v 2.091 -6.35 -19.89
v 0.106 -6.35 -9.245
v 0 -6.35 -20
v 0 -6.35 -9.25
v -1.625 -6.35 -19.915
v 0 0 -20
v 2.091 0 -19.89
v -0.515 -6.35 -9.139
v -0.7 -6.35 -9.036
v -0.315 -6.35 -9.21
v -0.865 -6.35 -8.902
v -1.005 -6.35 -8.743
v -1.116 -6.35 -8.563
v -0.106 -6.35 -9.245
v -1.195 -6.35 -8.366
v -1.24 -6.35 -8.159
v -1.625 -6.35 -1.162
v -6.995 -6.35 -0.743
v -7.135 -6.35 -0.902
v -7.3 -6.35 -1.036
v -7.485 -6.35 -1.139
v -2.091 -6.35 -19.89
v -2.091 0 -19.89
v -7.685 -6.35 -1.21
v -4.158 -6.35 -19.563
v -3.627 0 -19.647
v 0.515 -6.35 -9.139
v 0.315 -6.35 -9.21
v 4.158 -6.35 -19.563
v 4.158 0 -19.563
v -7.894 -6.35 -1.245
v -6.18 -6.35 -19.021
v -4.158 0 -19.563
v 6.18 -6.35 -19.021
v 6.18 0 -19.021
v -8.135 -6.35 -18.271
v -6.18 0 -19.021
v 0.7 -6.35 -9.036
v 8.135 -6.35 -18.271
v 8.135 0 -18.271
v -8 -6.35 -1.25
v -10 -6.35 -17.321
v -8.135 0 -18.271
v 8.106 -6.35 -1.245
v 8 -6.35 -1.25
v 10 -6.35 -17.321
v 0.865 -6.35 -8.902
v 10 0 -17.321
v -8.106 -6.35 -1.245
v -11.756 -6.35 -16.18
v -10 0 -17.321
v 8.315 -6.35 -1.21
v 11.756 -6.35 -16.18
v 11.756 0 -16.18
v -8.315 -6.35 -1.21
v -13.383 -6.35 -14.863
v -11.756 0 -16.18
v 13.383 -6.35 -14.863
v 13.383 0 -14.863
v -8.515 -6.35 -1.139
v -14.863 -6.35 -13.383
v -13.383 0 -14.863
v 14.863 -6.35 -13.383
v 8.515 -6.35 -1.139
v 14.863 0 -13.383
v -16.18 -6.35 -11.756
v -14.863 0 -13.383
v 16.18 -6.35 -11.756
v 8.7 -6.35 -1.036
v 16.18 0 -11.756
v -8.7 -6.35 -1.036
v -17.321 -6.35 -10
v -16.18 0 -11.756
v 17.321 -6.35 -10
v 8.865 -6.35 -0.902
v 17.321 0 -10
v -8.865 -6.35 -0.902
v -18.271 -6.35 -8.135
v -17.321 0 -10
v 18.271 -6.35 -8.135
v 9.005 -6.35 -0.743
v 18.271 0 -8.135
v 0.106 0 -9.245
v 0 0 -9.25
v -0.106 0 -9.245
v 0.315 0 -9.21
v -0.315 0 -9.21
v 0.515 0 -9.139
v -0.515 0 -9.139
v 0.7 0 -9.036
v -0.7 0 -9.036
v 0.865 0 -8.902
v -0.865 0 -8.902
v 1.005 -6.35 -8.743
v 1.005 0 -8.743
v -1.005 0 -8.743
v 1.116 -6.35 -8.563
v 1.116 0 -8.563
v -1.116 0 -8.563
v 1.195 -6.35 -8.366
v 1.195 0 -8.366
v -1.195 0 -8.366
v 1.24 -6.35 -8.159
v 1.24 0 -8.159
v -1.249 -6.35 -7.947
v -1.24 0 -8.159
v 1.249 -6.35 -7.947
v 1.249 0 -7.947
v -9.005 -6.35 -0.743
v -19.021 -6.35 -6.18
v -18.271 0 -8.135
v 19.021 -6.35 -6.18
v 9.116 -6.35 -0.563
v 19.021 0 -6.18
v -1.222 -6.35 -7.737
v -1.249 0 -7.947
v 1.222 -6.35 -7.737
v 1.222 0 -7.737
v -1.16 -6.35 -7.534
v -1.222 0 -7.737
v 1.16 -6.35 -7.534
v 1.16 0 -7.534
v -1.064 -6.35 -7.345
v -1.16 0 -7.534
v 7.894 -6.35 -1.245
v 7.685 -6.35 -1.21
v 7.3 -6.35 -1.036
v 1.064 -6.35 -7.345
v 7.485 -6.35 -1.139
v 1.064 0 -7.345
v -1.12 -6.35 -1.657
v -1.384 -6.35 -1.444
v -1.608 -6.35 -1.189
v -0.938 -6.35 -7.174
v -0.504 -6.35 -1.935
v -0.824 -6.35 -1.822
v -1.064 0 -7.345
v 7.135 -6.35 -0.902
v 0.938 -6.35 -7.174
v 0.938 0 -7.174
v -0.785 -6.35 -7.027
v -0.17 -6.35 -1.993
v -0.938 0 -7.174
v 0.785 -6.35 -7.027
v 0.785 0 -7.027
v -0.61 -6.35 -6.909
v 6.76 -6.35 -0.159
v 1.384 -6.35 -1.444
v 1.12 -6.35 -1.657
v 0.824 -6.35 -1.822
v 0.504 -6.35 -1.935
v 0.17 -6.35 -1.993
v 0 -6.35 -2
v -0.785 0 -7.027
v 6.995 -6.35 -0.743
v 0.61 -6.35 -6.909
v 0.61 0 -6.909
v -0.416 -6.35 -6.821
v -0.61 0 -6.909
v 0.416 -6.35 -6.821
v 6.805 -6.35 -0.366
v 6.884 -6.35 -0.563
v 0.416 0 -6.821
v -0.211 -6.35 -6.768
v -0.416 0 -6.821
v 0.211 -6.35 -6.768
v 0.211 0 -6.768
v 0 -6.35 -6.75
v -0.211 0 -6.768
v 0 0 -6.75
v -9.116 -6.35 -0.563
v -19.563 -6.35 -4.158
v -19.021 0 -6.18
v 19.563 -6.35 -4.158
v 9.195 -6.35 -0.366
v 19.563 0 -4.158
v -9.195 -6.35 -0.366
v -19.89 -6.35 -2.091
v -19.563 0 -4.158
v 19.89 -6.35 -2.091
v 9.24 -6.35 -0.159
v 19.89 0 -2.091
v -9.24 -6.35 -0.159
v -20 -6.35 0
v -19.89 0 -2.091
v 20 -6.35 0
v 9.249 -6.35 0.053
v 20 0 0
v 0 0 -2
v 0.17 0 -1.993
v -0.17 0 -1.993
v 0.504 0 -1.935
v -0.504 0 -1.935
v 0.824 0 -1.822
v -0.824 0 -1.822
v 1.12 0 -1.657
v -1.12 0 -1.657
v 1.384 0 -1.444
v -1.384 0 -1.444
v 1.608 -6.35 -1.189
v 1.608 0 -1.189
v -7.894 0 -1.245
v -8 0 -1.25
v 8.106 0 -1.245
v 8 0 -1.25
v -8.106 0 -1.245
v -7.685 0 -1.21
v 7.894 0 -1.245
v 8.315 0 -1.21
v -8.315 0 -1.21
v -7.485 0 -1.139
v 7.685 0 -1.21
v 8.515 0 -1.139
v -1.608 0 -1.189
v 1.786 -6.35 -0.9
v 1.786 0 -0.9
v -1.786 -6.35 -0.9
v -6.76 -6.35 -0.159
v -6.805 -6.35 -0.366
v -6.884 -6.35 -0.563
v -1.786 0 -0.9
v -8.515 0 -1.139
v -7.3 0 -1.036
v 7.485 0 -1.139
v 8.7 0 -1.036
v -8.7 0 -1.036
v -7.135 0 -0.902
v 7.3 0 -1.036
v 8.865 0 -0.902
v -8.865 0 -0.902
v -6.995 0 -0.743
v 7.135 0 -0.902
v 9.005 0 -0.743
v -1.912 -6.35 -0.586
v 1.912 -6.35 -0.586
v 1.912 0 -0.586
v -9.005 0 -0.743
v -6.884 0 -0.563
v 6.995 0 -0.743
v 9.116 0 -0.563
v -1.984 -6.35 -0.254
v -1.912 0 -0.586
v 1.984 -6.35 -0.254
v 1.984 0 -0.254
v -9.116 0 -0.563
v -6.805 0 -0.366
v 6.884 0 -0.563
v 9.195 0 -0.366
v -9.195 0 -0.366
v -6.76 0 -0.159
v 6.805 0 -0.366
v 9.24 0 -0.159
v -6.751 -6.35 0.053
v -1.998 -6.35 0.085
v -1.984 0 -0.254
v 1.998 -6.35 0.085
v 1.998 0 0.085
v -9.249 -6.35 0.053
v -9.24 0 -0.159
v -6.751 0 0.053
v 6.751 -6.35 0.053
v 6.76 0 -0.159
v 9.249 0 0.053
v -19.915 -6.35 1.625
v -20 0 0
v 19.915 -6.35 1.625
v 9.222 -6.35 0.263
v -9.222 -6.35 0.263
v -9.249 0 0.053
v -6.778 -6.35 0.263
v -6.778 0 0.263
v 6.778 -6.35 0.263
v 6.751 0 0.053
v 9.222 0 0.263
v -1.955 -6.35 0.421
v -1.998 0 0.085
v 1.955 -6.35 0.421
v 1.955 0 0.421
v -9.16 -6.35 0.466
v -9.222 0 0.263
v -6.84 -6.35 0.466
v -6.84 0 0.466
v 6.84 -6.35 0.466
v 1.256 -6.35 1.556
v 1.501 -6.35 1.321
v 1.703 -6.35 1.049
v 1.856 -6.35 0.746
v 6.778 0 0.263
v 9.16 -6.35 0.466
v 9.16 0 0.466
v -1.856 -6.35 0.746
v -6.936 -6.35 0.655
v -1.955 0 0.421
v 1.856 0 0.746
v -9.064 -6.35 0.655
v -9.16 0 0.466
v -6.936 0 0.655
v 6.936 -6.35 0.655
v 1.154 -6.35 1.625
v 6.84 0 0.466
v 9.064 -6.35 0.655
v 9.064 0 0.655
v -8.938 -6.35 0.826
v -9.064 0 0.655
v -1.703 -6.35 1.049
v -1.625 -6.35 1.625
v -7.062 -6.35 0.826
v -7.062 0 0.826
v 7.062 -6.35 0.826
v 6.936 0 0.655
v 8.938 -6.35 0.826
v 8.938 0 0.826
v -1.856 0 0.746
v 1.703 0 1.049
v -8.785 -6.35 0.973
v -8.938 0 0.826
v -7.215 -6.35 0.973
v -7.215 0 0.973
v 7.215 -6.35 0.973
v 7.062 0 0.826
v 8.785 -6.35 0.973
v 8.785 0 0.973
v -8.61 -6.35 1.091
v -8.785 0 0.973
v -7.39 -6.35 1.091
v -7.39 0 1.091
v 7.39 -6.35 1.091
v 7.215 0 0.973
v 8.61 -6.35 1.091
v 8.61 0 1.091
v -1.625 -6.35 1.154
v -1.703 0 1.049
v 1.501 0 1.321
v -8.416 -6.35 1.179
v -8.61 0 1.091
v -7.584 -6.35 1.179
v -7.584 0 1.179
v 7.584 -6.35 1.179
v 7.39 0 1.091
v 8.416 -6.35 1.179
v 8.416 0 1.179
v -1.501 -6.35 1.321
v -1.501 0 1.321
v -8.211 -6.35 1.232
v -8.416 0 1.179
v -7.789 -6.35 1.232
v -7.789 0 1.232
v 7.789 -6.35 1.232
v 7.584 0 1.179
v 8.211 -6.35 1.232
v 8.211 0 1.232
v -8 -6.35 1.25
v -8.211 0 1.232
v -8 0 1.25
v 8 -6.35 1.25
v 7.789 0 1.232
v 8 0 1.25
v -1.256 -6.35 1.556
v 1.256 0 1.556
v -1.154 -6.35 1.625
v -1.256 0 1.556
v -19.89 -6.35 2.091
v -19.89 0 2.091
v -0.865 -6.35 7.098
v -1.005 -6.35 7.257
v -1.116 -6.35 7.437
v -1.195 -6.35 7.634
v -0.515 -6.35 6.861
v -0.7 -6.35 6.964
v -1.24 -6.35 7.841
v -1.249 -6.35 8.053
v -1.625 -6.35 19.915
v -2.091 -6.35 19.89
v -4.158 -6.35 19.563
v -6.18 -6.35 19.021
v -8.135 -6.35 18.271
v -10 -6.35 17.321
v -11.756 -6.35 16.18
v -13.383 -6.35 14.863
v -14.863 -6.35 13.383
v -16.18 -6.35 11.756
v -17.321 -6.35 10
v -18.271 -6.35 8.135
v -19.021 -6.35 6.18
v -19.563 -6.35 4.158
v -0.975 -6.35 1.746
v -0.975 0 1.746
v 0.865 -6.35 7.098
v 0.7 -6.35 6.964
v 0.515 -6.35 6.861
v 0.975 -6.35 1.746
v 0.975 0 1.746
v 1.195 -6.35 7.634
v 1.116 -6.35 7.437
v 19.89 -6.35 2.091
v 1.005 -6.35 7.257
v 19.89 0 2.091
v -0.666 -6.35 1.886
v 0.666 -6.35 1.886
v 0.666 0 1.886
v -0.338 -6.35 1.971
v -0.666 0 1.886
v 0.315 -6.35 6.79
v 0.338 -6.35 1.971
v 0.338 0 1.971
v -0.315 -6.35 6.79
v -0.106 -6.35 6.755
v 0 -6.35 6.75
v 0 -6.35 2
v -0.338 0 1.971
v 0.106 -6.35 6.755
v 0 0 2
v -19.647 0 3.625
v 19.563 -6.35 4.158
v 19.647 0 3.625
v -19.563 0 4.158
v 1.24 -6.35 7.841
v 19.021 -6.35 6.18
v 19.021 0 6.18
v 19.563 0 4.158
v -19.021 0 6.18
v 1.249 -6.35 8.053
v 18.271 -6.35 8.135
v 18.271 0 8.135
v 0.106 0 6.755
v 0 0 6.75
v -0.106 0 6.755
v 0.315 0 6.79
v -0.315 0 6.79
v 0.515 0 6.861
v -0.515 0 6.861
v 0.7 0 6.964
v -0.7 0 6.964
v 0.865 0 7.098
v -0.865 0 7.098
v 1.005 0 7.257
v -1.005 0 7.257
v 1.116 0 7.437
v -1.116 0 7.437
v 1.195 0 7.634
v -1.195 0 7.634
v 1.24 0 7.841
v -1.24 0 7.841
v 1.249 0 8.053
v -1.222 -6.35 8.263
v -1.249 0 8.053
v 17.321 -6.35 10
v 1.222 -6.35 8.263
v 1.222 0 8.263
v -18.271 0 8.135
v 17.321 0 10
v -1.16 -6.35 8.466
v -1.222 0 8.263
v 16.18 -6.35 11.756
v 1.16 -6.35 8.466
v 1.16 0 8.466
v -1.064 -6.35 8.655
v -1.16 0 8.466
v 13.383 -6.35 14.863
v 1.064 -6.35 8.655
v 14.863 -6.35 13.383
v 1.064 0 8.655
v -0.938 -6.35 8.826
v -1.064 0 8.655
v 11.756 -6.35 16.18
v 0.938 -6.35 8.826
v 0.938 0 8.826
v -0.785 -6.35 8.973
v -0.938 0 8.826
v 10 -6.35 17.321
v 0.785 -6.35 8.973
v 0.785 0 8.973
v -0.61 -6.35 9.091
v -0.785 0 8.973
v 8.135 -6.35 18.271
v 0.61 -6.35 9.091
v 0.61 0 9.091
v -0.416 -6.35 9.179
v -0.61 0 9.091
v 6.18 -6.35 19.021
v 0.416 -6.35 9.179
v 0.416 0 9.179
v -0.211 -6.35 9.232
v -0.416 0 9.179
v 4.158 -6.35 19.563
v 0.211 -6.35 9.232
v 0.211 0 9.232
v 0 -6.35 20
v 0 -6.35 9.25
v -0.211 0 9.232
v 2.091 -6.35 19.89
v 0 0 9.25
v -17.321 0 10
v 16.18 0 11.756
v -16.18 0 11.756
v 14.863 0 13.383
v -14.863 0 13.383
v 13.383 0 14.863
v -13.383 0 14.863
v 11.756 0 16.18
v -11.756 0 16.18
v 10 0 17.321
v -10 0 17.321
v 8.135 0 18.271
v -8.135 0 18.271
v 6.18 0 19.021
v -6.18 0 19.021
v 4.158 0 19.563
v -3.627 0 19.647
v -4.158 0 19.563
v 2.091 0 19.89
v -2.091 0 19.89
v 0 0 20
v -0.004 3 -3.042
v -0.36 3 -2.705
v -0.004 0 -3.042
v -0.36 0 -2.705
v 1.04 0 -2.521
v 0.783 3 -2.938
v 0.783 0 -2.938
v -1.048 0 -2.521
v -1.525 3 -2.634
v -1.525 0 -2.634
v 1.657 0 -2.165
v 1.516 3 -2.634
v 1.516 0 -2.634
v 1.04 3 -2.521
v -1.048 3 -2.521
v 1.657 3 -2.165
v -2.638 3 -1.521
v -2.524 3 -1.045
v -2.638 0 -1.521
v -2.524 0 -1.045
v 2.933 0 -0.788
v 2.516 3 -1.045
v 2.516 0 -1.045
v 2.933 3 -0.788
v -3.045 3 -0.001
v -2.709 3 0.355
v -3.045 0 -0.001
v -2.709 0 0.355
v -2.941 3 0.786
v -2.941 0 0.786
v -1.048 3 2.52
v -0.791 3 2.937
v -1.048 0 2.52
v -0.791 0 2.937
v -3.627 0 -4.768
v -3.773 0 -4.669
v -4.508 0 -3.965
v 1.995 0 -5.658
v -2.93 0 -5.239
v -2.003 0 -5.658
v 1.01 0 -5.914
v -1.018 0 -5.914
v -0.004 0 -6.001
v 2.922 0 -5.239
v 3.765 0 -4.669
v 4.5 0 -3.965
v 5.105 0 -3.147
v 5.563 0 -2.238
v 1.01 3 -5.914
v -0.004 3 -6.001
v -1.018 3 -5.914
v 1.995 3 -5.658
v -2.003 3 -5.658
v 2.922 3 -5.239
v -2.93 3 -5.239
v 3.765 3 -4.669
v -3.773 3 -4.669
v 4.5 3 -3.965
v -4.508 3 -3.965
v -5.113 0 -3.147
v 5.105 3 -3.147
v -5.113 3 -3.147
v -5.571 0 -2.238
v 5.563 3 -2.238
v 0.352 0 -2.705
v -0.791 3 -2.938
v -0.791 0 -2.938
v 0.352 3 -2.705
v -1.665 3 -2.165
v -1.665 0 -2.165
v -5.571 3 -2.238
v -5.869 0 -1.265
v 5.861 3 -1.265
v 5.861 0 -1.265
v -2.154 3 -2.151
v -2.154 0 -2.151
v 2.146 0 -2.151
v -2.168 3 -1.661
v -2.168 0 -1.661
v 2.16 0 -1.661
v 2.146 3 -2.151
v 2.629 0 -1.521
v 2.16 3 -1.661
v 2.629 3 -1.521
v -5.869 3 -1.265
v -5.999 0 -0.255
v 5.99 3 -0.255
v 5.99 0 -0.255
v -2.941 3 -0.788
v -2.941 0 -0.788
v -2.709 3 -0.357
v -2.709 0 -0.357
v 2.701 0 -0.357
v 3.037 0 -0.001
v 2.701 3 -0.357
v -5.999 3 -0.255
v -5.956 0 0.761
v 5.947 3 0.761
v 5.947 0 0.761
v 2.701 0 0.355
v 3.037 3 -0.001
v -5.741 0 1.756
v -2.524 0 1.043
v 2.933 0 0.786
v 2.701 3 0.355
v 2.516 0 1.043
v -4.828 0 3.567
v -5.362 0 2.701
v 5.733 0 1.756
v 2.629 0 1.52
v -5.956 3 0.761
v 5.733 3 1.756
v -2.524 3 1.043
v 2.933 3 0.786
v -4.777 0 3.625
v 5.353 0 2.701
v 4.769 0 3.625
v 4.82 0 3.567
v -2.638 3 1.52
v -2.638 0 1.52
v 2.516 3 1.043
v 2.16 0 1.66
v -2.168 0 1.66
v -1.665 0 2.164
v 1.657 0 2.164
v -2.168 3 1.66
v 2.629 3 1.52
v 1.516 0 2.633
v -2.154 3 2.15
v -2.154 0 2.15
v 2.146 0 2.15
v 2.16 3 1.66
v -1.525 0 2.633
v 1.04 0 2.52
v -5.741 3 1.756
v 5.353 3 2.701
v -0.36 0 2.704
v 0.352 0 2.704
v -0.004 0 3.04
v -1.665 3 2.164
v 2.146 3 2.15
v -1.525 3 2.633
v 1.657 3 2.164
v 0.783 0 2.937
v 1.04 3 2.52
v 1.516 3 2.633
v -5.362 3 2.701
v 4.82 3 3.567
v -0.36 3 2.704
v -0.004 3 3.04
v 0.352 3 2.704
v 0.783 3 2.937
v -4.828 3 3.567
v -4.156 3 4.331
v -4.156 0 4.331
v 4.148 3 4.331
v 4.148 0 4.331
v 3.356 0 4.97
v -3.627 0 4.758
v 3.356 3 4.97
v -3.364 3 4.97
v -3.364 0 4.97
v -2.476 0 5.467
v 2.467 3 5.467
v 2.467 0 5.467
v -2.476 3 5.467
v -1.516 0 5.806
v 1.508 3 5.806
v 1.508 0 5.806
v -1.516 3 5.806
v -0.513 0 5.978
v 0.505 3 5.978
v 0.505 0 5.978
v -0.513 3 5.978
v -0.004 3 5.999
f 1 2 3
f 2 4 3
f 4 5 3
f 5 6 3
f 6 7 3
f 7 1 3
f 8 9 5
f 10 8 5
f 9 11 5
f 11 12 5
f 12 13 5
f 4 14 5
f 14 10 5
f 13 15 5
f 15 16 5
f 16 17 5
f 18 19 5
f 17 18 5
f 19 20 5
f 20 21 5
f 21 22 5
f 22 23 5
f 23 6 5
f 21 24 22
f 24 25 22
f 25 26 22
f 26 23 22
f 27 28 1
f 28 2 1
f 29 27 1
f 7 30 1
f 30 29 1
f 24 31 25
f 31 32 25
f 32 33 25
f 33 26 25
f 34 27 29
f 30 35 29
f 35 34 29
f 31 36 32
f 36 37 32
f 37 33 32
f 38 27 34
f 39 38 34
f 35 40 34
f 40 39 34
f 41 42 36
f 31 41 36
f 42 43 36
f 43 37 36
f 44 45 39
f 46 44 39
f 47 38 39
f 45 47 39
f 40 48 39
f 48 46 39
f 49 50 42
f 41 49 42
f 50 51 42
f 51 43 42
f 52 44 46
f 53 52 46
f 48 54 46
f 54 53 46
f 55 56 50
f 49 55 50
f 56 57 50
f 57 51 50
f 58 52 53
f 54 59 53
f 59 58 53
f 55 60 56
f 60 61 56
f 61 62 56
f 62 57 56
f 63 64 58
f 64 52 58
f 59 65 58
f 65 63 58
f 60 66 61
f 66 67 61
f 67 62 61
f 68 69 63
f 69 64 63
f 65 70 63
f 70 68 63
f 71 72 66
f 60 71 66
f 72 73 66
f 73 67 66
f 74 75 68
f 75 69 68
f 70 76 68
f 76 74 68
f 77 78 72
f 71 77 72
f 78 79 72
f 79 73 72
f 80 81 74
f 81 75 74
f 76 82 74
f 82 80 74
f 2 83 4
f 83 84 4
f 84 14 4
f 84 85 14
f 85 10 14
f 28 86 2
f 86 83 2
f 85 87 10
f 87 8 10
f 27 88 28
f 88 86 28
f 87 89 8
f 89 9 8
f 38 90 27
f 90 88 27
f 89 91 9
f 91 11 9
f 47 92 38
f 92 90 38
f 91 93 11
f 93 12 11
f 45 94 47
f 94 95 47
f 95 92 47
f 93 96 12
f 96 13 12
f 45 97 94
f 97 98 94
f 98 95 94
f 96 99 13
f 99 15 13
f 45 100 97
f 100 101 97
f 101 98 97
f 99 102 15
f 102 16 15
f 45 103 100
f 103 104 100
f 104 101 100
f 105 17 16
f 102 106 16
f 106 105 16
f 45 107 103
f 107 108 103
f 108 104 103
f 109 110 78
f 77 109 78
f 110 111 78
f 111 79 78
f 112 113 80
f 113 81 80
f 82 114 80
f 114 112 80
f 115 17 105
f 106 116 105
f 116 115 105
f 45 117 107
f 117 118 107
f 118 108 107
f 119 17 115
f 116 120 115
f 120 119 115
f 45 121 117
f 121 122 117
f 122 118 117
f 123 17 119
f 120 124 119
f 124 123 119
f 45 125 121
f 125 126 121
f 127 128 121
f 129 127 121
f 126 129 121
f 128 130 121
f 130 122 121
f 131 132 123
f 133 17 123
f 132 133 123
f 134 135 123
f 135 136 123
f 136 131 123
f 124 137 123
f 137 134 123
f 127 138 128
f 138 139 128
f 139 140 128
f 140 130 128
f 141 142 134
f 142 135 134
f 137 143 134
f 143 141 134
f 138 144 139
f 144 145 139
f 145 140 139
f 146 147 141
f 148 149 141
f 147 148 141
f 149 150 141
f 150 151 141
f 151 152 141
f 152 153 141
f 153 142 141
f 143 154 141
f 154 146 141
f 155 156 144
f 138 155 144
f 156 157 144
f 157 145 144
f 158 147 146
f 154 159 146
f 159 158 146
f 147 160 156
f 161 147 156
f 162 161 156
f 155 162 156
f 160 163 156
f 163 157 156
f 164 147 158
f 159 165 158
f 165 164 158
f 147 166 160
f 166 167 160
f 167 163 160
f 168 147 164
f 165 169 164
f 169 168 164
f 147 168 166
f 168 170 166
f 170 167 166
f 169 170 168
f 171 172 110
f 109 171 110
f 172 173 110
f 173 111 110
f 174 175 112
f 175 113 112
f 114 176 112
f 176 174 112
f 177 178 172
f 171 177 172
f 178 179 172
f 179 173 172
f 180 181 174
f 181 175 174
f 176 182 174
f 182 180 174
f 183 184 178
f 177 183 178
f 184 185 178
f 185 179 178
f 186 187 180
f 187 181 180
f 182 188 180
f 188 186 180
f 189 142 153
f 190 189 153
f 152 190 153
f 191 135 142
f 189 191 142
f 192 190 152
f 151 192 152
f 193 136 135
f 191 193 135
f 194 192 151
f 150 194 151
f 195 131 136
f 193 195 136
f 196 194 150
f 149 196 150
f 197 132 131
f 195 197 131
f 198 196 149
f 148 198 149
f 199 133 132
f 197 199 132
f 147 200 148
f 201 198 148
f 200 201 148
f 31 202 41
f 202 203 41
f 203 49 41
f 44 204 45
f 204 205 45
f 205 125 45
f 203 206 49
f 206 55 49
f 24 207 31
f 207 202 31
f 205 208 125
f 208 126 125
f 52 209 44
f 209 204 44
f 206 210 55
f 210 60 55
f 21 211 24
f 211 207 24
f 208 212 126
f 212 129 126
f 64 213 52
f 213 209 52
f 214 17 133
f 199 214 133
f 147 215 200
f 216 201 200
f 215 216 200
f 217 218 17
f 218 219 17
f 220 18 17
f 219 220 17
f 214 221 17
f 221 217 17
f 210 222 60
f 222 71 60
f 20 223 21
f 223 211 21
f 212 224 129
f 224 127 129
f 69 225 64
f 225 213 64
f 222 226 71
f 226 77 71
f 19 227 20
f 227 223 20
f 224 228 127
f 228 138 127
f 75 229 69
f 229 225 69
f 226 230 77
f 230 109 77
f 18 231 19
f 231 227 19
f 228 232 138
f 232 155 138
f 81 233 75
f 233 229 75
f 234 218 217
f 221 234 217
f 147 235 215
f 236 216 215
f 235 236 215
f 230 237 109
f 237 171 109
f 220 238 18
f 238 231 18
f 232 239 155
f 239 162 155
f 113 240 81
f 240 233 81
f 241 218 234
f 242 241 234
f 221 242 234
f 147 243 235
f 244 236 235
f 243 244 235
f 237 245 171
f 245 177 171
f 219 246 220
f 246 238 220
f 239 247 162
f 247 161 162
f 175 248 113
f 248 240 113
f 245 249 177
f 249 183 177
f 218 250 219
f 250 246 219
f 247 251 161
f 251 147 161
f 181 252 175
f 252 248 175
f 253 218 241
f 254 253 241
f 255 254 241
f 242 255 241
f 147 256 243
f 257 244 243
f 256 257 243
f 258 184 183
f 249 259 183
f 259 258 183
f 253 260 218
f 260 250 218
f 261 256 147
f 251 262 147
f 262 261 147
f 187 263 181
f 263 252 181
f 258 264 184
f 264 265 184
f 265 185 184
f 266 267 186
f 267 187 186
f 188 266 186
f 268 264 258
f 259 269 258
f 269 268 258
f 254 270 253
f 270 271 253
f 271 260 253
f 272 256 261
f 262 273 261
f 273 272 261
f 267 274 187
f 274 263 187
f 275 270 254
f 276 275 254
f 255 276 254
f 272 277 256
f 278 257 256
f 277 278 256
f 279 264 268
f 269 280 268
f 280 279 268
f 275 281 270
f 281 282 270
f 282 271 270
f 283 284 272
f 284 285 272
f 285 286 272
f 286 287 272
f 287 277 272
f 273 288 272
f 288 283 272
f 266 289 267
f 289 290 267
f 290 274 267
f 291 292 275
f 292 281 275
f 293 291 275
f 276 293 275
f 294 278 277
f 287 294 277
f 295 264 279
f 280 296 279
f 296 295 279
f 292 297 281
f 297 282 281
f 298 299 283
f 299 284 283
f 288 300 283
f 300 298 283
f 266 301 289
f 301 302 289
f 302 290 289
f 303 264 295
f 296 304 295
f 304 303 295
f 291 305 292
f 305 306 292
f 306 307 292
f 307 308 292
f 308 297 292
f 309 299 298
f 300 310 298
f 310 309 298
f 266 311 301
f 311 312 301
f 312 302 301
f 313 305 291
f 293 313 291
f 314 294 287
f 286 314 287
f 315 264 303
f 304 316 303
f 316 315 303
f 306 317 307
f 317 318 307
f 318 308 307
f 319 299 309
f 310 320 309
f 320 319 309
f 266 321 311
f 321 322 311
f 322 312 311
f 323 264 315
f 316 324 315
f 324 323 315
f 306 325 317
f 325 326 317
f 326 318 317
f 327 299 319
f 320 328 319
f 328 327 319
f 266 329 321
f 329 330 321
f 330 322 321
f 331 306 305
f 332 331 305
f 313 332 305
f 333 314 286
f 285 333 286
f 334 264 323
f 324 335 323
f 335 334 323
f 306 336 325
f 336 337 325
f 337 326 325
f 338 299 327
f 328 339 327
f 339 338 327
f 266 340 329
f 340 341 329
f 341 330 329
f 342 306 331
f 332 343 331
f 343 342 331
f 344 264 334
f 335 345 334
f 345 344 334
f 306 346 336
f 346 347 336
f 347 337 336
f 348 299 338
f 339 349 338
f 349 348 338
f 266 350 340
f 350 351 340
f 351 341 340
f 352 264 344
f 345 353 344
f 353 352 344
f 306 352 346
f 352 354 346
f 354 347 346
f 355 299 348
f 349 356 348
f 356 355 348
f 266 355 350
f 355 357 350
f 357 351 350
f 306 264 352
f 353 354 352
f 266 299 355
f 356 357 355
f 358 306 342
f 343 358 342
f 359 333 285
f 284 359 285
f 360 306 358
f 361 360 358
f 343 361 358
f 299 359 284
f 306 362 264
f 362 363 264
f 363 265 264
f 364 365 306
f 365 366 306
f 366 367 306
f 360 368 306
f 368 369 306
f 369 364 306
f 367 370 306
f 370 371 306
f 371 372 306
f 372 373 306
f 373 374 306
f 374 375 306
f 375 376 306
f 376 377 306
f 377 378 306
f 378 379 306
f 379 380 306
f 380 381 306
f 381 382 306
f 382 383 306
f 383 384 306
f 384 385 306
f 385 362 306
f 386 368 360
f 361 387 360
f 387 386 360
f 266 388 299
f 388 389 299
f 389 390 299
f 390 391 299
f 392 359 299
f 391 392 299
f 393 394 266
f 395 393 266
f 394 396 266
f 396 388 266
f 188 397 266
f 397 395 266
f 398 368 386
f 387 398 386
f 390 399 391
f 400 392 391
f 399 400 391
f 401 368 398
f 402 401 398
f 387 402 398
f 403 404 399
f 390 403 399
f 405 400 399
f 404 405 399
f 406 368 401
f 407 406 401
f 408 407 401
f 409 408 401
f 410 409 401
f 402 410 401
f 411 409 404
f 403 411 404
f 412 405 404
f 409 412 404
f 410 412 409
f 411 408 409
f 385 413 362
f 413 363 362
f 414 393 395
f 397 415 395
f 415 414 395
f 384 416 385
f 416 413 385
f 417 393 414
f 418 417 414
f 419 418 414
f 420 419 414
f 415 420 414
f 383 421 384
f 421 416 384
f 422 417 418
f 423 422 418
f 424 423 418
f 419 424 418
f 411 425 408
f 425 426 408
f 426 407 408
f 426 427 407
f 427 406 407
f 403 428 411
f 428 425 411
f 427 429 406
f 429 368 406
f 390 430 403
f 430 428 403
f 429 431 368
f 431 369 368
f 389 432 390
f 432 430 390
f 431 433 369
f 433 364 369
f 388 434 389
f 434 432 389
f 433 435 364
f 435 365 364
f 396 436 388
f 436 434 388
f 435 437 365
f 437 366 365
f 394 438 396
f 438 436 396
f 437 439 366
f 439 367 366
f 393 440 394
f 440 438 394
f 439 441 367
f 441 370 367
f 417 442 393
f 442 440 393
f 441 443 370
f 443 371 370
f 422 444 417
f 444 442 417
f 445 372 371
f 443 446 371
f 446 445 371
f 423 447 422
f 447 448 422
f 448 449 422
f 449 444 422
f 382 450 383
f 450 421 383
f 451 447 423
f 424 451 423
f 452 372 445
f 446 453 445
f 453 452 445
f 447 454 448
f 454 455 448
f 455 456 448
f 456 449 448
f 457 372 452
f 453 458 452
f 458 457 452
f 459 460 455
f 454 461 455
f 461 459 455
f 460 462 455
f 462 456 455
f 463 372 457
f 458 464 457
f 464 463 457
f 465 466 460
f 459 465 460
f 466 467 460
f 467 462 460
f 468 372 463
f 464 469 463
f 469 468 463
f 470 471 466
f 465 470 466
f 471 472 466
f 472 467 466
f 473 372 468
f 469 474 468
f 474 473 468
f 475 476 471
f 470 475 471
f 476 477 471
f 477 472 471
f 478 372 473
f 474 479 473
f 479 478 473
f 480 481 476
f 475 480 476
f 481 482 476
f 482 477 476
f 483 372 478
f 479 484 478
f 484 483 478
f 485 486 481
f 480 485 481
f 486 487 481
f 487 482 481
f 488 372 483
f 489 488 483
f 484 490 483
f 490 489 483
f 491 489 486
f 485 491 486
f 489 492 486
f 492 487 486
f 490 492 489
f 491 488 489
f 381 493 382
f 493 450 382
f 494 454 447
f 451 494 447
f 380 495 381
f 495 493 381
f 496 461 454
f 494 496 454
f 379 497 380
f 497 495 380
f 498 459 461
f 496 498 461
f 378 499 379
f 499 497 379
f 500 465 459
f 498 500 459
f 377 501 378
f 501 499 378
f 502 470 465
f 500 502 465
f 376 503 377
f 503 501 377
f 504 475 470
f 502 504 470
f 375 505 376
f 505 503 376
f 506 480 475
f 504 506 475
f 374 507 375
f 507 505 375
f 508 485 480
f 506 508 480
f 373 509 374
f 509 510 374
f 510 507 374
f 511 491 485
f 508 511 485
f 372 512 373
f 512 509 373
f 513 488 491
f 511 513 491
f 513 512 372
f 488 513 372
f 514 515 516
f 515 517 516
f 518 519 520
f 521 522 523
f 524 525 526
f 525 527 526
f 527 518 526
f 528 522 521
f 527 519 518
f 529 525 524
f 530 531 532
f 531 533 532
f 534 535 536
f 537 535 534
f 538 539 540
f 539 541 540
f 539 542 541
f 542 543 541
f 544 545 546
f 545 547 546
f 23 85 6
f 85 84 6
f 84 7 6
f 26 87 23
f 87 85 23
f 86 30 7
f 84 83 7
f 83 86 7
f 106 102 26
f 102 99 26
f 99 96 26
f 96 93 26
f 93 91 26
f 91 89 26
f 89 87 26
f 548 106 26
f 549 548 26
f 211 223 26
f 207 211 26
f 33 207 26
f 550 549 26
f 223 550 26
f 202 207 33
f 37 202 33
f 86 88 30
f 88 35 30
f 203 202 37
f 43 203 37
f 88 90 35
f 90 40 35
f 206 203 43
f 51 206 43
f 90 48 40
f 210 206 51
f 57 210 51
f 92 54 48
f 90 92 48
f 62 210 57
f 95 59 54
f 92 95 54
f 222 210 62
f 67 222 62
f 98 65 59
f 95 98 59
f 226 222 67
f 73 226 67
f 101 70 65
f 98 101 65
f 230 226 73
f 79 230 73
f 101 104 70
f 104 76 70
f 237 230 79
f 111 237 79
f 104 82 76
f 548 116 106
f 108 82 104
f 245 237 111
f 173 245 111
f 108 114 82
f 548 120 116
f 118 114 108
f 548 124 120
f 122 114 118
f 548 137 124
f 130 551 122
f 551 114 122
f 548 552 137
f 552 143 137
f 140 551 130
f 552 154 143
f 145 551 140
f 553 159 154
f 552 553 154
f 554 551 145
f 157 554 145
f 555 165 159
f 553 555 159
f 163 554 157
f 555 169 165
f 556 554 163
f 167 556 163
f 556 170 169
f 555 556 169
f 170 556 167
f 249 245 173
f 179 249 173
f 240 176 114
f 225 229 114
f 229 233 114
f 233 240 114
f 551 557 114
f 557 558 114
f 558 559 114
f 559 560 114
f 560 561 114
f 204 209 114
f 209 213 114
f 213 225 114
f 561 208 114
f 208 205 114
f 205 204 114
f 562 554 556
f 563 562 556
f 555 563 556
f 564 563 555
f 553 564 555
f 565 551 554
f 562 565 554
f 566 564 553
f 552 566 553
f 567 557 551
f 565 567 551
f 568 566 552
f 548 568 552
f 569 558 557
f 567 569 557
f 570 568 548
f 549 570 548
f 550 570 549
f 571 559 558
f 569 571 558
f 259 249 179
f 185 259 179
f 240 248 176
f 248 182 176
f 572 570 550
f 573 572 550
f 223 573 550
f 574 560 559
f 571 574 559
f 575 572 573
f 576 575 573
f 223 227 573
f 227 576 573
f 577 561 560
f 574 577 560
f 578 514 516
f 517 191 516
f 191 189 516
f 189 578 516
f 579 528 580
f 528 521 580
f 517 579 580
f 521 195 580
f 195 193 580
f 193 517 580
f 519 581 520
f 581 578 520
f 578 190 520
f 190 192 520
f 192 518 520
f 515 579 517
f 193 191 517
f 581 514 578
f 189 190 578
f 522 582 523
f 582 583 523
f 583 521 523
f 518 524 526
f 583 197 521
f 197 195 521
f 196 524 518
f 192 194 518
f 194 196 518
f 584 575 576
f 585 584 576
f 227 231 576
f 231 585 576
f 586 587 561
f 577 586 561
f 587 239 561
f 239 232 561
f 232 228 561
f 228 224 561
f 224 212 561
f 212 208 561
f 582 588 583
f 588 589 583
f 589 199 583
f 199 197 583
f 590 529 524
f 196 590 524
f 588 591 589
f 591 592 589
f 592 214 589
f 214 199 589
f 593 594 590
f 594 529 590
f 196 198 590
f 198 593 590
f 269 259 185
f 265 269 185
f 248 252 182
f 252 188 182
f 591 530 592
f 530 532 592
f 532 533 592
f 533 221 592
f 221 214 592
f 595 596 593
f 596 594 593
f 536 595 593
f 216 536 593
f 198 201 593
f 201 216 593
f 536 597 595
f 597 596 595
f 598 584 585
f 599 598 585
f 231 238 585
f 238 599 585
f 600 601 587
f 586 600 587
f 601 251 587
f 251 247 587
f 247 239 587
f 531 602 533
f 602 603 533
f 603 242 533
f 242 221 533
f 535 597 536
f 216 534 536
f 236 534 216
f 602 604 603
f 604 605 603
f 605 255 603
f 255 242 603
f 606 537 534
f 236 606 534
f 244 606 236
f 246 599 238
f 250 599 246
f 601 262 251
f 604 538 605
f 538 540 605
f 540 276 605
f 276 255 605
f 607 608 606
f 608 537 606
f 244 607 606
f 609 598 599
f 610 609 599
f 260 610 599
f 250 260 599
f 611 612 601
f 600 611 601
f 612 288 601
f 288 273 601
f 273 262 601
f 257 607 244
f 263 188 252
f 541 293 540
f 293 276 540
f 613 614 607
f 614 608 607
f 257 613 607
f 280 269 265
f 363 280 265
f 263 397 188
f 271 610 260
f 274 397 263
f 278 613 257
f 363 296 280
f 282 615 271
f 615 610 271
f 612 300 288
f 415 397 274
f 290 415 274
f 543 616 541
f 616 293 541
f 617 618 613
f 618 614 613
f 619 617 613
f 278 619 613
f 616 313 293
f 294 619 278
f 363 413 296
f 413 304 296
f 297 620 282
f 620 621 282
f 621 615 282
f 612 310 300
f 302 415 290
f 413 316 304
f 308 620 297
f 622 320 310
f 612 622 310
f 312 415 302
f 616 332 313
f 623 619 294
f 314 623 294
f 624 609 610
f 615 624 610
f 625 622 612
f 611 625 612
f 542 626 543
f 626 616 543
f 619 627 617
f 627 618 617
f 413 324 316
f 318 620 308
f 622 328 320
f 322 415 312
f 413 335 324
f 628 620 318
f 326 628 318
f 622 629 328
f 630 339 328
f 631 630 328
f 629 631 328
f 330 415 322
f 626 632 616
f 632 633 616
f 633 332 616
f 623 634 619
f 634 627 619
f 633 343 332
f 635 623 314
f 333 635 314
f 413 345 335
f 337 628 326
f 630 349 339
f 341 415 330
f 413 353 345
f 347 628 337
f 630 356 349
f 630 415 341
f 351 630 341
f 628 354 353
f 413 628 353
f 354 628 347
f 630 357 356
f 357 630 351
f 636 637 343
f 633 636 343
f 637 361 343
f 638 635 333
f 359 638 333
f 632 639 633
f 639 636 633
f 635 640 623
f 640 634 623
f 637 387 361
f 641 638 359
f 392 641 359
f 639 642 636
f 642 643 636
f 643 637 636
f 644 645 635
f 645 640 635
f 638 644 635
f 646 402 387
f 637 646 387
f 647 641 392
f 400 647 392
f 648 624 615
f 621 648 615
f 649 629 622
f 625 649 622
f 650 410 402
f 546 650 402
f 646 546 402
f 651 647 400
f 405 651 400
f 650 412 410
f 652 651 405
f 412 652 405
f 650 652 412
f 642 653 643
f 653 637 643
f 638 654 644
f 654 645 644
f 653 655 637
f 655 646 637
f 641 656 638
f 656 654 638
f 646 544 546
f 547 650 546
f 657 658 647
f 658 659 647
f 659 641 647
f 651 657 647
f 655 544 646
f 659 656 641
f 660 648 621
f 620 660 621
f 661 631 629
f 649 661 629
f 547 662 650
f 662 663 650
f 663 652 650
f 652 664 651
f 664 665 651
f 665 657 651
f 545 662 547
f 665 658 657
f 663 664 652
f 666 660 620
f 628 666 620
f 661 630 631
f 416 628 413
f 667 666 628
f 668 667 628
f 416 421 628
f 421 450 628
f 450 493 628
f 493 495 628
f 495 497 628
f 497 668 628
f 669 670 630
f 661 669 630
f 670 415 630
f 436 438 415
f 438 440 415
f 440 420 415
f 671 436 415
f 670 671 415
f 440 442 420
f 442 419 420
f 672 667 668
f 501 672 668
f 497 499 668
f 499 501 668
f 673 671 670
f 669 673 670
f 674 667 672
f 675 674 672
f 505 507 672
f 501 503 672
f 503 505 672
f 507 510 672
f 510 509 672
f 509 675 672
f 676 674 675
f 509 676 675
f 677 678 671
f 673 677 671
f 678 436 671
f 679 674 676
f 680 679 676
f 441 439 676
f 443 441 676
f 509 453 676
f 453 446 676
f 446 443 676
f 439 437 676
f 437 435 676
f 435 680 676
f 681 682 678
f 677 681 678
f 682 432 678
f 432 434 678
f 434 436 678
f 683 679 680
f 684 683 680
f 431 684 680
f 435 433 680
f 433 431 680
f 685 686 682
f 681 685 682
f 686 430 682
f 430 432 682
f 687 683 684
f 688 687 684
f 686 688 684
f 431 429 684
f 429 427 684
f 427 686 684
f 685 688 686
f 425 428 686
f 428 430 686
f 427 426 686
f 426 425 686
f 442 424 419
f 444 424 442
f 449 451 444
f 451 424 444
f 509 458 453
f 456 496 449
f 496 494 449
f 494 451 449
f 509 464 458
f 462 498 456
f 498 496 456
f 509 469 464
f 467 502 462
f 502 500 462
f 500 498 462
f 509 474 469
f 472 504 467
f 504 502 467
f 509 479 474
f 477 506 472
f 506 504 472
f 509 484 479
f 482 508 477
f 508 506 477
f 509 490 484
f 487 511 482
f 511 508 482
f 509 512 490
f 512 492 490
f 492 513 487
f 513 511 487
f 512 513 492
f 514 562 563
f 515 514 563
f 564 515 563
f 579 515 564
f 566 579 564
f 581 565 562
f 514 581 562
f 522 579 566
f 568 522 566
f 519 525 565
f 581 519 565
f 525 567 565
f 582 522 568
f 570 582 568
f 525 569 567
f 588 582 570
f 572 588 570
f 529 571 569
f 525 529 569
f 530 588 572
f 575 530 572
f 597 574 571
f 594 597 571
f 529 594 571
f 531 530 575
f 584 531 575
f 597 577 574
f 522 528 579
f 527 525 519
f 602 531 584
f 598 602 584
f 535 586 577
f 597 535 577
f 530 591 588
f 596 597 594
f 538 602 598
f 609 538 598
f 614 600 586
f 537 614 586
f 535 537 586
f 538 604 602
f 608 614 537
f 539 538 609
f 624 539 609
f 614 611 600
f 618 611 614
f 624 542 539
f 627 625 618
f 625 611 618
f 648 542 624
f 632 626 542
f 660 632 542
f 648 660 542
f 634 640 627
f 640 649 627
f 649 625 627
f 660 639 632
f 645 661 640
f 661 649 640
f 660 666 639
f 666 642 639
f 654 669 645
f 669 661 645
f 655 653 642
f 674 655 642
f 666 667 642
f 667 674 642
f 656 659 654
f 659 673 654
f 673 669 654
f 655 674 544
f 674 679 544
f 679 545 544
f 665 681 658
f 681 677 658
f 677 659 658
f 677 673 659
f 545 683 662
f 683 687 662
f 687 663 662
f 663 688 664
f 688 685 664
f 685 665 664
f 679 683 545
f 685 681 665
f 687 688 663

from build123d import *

# Parameters (mm, degrees)
SKETCH1_R           = 6
BOSS_EXTRUDE1_DEPTH = 3
SKETCH2_R           = 20
SKETCH2_R_2         = 2
SKETCH2_R_3         = 1.25
BOSS_EXTRUDE2_DEPTH = 6.35


with BuildPart() as part:
    # Sketch1 → Boss-Extrude1 (new body)
    with BuildSketch(Plane(origin=(0, 0, 0), x_dir=(1, 0, 0), z_dir=(0, 1, 0))):
        with Locations(Location((-0.004099667, 0.000679594, 0), (0, 0, 270))):
            Circle(SKETCH1_R)
        Polygon((-0.004099667, 3.041629594), (-0.360179239, 2.705372466), (-0.791155443, 2.938011735), (-1.048072148, 2.521052117), (-1.524574667, 2.634219546), (-1.664820058, 2.164972545), (-2.154376034, 2.15095596), (-2.168392618, 1.661399985), (-2.637639619, 1.521154594), (-2.52447219, 1.044652075), (-2.941431809, 0.787735369), (-2.708792539, 0.356759166), (-3.045049667, 0.000679594), (-2.708792539, -0.355399978), (-2.941431809, -0.786376181), (-2.52447219, -1.043292887), (-2.637639619, -1.519795406), (-2.168392618, -1.660040797), (-2.154376034, -2.149596772), (-1.664820058, -2.163613357), (-1.524574667, -2.632860358), (-1.048072148, -2.519692929), (-0.791155443, -2.936652547), (-0.360179239, -2.704013278), (-0.004099667, -3.040270406), (0.351979904, -2.704013278), (0.782956108, -2.936652547), (1.039872814, -2.519692929), (1.516375333, -2.632860358), (1.656620724, -2.163613357), (2.146176699, -2.149596772), (2.160193283, -1.660040797), (2.629440284, -1.519795406), (2.516272855, -1.043292887), (2.933232474, -0.786376181), (2.700593205, -0.355399978), (3.036850333, 0.000679594), (2.700593205, 0.356759166), (2.933232474, 0.787735369), (2.516272855, 1.044652075), (2.629440284, 1.521154594), (2.160193283, 1.661399985), (2.146176699, 2.15095596), (1.656620724, 2.164972545), (1.516375333, 2.634219546), (1.039872814, 2.521052117), (0.782956108, 2.938011735), (0.351979904, 2.705372466), align=None, mode=Mode.SUBTRACT)
    extrude(amount=BOSS_EXTRUDE1_DEPTH)

    # Sketch2 → Boss-Extrude2 (add)
    with BuildSketch(Plane.XZ):
        with Locations(Location((0, 0, 0), (0, 0, 270))):
            Circle(SKETCH2_R)
        with Locations(Location((0, 0, 0), (0, 0, 270))):
            Circle(SKETCH2_R_2, mode=Mode.SUBTRACT)
        with Locations(Location((8, 0, 0), (0, 0, 270))):
            Circle(SKETCH2_R_3, mode=Mode.SUBTRACT)
        with Locations(Location((0, -8, 0), (0, 0, 270))):
            Circle(SKETCH2_R_3, mode=Mode.SUBTRACT)
        with Locations(Location((-8, 0, 0), (0, 0, 270))):
            Circle(SKETCH2_R_3, mode=Mode.SUBTRACT)
        with Locations(Location((0, 8, 0), (0, 0, 270))):
            Circle(SKETCH2_R_3, mode=Mode.SUBTRACT)
    extrude(amount=BOSS_EXTRUDE2_DEPTH)


solid = part.part
